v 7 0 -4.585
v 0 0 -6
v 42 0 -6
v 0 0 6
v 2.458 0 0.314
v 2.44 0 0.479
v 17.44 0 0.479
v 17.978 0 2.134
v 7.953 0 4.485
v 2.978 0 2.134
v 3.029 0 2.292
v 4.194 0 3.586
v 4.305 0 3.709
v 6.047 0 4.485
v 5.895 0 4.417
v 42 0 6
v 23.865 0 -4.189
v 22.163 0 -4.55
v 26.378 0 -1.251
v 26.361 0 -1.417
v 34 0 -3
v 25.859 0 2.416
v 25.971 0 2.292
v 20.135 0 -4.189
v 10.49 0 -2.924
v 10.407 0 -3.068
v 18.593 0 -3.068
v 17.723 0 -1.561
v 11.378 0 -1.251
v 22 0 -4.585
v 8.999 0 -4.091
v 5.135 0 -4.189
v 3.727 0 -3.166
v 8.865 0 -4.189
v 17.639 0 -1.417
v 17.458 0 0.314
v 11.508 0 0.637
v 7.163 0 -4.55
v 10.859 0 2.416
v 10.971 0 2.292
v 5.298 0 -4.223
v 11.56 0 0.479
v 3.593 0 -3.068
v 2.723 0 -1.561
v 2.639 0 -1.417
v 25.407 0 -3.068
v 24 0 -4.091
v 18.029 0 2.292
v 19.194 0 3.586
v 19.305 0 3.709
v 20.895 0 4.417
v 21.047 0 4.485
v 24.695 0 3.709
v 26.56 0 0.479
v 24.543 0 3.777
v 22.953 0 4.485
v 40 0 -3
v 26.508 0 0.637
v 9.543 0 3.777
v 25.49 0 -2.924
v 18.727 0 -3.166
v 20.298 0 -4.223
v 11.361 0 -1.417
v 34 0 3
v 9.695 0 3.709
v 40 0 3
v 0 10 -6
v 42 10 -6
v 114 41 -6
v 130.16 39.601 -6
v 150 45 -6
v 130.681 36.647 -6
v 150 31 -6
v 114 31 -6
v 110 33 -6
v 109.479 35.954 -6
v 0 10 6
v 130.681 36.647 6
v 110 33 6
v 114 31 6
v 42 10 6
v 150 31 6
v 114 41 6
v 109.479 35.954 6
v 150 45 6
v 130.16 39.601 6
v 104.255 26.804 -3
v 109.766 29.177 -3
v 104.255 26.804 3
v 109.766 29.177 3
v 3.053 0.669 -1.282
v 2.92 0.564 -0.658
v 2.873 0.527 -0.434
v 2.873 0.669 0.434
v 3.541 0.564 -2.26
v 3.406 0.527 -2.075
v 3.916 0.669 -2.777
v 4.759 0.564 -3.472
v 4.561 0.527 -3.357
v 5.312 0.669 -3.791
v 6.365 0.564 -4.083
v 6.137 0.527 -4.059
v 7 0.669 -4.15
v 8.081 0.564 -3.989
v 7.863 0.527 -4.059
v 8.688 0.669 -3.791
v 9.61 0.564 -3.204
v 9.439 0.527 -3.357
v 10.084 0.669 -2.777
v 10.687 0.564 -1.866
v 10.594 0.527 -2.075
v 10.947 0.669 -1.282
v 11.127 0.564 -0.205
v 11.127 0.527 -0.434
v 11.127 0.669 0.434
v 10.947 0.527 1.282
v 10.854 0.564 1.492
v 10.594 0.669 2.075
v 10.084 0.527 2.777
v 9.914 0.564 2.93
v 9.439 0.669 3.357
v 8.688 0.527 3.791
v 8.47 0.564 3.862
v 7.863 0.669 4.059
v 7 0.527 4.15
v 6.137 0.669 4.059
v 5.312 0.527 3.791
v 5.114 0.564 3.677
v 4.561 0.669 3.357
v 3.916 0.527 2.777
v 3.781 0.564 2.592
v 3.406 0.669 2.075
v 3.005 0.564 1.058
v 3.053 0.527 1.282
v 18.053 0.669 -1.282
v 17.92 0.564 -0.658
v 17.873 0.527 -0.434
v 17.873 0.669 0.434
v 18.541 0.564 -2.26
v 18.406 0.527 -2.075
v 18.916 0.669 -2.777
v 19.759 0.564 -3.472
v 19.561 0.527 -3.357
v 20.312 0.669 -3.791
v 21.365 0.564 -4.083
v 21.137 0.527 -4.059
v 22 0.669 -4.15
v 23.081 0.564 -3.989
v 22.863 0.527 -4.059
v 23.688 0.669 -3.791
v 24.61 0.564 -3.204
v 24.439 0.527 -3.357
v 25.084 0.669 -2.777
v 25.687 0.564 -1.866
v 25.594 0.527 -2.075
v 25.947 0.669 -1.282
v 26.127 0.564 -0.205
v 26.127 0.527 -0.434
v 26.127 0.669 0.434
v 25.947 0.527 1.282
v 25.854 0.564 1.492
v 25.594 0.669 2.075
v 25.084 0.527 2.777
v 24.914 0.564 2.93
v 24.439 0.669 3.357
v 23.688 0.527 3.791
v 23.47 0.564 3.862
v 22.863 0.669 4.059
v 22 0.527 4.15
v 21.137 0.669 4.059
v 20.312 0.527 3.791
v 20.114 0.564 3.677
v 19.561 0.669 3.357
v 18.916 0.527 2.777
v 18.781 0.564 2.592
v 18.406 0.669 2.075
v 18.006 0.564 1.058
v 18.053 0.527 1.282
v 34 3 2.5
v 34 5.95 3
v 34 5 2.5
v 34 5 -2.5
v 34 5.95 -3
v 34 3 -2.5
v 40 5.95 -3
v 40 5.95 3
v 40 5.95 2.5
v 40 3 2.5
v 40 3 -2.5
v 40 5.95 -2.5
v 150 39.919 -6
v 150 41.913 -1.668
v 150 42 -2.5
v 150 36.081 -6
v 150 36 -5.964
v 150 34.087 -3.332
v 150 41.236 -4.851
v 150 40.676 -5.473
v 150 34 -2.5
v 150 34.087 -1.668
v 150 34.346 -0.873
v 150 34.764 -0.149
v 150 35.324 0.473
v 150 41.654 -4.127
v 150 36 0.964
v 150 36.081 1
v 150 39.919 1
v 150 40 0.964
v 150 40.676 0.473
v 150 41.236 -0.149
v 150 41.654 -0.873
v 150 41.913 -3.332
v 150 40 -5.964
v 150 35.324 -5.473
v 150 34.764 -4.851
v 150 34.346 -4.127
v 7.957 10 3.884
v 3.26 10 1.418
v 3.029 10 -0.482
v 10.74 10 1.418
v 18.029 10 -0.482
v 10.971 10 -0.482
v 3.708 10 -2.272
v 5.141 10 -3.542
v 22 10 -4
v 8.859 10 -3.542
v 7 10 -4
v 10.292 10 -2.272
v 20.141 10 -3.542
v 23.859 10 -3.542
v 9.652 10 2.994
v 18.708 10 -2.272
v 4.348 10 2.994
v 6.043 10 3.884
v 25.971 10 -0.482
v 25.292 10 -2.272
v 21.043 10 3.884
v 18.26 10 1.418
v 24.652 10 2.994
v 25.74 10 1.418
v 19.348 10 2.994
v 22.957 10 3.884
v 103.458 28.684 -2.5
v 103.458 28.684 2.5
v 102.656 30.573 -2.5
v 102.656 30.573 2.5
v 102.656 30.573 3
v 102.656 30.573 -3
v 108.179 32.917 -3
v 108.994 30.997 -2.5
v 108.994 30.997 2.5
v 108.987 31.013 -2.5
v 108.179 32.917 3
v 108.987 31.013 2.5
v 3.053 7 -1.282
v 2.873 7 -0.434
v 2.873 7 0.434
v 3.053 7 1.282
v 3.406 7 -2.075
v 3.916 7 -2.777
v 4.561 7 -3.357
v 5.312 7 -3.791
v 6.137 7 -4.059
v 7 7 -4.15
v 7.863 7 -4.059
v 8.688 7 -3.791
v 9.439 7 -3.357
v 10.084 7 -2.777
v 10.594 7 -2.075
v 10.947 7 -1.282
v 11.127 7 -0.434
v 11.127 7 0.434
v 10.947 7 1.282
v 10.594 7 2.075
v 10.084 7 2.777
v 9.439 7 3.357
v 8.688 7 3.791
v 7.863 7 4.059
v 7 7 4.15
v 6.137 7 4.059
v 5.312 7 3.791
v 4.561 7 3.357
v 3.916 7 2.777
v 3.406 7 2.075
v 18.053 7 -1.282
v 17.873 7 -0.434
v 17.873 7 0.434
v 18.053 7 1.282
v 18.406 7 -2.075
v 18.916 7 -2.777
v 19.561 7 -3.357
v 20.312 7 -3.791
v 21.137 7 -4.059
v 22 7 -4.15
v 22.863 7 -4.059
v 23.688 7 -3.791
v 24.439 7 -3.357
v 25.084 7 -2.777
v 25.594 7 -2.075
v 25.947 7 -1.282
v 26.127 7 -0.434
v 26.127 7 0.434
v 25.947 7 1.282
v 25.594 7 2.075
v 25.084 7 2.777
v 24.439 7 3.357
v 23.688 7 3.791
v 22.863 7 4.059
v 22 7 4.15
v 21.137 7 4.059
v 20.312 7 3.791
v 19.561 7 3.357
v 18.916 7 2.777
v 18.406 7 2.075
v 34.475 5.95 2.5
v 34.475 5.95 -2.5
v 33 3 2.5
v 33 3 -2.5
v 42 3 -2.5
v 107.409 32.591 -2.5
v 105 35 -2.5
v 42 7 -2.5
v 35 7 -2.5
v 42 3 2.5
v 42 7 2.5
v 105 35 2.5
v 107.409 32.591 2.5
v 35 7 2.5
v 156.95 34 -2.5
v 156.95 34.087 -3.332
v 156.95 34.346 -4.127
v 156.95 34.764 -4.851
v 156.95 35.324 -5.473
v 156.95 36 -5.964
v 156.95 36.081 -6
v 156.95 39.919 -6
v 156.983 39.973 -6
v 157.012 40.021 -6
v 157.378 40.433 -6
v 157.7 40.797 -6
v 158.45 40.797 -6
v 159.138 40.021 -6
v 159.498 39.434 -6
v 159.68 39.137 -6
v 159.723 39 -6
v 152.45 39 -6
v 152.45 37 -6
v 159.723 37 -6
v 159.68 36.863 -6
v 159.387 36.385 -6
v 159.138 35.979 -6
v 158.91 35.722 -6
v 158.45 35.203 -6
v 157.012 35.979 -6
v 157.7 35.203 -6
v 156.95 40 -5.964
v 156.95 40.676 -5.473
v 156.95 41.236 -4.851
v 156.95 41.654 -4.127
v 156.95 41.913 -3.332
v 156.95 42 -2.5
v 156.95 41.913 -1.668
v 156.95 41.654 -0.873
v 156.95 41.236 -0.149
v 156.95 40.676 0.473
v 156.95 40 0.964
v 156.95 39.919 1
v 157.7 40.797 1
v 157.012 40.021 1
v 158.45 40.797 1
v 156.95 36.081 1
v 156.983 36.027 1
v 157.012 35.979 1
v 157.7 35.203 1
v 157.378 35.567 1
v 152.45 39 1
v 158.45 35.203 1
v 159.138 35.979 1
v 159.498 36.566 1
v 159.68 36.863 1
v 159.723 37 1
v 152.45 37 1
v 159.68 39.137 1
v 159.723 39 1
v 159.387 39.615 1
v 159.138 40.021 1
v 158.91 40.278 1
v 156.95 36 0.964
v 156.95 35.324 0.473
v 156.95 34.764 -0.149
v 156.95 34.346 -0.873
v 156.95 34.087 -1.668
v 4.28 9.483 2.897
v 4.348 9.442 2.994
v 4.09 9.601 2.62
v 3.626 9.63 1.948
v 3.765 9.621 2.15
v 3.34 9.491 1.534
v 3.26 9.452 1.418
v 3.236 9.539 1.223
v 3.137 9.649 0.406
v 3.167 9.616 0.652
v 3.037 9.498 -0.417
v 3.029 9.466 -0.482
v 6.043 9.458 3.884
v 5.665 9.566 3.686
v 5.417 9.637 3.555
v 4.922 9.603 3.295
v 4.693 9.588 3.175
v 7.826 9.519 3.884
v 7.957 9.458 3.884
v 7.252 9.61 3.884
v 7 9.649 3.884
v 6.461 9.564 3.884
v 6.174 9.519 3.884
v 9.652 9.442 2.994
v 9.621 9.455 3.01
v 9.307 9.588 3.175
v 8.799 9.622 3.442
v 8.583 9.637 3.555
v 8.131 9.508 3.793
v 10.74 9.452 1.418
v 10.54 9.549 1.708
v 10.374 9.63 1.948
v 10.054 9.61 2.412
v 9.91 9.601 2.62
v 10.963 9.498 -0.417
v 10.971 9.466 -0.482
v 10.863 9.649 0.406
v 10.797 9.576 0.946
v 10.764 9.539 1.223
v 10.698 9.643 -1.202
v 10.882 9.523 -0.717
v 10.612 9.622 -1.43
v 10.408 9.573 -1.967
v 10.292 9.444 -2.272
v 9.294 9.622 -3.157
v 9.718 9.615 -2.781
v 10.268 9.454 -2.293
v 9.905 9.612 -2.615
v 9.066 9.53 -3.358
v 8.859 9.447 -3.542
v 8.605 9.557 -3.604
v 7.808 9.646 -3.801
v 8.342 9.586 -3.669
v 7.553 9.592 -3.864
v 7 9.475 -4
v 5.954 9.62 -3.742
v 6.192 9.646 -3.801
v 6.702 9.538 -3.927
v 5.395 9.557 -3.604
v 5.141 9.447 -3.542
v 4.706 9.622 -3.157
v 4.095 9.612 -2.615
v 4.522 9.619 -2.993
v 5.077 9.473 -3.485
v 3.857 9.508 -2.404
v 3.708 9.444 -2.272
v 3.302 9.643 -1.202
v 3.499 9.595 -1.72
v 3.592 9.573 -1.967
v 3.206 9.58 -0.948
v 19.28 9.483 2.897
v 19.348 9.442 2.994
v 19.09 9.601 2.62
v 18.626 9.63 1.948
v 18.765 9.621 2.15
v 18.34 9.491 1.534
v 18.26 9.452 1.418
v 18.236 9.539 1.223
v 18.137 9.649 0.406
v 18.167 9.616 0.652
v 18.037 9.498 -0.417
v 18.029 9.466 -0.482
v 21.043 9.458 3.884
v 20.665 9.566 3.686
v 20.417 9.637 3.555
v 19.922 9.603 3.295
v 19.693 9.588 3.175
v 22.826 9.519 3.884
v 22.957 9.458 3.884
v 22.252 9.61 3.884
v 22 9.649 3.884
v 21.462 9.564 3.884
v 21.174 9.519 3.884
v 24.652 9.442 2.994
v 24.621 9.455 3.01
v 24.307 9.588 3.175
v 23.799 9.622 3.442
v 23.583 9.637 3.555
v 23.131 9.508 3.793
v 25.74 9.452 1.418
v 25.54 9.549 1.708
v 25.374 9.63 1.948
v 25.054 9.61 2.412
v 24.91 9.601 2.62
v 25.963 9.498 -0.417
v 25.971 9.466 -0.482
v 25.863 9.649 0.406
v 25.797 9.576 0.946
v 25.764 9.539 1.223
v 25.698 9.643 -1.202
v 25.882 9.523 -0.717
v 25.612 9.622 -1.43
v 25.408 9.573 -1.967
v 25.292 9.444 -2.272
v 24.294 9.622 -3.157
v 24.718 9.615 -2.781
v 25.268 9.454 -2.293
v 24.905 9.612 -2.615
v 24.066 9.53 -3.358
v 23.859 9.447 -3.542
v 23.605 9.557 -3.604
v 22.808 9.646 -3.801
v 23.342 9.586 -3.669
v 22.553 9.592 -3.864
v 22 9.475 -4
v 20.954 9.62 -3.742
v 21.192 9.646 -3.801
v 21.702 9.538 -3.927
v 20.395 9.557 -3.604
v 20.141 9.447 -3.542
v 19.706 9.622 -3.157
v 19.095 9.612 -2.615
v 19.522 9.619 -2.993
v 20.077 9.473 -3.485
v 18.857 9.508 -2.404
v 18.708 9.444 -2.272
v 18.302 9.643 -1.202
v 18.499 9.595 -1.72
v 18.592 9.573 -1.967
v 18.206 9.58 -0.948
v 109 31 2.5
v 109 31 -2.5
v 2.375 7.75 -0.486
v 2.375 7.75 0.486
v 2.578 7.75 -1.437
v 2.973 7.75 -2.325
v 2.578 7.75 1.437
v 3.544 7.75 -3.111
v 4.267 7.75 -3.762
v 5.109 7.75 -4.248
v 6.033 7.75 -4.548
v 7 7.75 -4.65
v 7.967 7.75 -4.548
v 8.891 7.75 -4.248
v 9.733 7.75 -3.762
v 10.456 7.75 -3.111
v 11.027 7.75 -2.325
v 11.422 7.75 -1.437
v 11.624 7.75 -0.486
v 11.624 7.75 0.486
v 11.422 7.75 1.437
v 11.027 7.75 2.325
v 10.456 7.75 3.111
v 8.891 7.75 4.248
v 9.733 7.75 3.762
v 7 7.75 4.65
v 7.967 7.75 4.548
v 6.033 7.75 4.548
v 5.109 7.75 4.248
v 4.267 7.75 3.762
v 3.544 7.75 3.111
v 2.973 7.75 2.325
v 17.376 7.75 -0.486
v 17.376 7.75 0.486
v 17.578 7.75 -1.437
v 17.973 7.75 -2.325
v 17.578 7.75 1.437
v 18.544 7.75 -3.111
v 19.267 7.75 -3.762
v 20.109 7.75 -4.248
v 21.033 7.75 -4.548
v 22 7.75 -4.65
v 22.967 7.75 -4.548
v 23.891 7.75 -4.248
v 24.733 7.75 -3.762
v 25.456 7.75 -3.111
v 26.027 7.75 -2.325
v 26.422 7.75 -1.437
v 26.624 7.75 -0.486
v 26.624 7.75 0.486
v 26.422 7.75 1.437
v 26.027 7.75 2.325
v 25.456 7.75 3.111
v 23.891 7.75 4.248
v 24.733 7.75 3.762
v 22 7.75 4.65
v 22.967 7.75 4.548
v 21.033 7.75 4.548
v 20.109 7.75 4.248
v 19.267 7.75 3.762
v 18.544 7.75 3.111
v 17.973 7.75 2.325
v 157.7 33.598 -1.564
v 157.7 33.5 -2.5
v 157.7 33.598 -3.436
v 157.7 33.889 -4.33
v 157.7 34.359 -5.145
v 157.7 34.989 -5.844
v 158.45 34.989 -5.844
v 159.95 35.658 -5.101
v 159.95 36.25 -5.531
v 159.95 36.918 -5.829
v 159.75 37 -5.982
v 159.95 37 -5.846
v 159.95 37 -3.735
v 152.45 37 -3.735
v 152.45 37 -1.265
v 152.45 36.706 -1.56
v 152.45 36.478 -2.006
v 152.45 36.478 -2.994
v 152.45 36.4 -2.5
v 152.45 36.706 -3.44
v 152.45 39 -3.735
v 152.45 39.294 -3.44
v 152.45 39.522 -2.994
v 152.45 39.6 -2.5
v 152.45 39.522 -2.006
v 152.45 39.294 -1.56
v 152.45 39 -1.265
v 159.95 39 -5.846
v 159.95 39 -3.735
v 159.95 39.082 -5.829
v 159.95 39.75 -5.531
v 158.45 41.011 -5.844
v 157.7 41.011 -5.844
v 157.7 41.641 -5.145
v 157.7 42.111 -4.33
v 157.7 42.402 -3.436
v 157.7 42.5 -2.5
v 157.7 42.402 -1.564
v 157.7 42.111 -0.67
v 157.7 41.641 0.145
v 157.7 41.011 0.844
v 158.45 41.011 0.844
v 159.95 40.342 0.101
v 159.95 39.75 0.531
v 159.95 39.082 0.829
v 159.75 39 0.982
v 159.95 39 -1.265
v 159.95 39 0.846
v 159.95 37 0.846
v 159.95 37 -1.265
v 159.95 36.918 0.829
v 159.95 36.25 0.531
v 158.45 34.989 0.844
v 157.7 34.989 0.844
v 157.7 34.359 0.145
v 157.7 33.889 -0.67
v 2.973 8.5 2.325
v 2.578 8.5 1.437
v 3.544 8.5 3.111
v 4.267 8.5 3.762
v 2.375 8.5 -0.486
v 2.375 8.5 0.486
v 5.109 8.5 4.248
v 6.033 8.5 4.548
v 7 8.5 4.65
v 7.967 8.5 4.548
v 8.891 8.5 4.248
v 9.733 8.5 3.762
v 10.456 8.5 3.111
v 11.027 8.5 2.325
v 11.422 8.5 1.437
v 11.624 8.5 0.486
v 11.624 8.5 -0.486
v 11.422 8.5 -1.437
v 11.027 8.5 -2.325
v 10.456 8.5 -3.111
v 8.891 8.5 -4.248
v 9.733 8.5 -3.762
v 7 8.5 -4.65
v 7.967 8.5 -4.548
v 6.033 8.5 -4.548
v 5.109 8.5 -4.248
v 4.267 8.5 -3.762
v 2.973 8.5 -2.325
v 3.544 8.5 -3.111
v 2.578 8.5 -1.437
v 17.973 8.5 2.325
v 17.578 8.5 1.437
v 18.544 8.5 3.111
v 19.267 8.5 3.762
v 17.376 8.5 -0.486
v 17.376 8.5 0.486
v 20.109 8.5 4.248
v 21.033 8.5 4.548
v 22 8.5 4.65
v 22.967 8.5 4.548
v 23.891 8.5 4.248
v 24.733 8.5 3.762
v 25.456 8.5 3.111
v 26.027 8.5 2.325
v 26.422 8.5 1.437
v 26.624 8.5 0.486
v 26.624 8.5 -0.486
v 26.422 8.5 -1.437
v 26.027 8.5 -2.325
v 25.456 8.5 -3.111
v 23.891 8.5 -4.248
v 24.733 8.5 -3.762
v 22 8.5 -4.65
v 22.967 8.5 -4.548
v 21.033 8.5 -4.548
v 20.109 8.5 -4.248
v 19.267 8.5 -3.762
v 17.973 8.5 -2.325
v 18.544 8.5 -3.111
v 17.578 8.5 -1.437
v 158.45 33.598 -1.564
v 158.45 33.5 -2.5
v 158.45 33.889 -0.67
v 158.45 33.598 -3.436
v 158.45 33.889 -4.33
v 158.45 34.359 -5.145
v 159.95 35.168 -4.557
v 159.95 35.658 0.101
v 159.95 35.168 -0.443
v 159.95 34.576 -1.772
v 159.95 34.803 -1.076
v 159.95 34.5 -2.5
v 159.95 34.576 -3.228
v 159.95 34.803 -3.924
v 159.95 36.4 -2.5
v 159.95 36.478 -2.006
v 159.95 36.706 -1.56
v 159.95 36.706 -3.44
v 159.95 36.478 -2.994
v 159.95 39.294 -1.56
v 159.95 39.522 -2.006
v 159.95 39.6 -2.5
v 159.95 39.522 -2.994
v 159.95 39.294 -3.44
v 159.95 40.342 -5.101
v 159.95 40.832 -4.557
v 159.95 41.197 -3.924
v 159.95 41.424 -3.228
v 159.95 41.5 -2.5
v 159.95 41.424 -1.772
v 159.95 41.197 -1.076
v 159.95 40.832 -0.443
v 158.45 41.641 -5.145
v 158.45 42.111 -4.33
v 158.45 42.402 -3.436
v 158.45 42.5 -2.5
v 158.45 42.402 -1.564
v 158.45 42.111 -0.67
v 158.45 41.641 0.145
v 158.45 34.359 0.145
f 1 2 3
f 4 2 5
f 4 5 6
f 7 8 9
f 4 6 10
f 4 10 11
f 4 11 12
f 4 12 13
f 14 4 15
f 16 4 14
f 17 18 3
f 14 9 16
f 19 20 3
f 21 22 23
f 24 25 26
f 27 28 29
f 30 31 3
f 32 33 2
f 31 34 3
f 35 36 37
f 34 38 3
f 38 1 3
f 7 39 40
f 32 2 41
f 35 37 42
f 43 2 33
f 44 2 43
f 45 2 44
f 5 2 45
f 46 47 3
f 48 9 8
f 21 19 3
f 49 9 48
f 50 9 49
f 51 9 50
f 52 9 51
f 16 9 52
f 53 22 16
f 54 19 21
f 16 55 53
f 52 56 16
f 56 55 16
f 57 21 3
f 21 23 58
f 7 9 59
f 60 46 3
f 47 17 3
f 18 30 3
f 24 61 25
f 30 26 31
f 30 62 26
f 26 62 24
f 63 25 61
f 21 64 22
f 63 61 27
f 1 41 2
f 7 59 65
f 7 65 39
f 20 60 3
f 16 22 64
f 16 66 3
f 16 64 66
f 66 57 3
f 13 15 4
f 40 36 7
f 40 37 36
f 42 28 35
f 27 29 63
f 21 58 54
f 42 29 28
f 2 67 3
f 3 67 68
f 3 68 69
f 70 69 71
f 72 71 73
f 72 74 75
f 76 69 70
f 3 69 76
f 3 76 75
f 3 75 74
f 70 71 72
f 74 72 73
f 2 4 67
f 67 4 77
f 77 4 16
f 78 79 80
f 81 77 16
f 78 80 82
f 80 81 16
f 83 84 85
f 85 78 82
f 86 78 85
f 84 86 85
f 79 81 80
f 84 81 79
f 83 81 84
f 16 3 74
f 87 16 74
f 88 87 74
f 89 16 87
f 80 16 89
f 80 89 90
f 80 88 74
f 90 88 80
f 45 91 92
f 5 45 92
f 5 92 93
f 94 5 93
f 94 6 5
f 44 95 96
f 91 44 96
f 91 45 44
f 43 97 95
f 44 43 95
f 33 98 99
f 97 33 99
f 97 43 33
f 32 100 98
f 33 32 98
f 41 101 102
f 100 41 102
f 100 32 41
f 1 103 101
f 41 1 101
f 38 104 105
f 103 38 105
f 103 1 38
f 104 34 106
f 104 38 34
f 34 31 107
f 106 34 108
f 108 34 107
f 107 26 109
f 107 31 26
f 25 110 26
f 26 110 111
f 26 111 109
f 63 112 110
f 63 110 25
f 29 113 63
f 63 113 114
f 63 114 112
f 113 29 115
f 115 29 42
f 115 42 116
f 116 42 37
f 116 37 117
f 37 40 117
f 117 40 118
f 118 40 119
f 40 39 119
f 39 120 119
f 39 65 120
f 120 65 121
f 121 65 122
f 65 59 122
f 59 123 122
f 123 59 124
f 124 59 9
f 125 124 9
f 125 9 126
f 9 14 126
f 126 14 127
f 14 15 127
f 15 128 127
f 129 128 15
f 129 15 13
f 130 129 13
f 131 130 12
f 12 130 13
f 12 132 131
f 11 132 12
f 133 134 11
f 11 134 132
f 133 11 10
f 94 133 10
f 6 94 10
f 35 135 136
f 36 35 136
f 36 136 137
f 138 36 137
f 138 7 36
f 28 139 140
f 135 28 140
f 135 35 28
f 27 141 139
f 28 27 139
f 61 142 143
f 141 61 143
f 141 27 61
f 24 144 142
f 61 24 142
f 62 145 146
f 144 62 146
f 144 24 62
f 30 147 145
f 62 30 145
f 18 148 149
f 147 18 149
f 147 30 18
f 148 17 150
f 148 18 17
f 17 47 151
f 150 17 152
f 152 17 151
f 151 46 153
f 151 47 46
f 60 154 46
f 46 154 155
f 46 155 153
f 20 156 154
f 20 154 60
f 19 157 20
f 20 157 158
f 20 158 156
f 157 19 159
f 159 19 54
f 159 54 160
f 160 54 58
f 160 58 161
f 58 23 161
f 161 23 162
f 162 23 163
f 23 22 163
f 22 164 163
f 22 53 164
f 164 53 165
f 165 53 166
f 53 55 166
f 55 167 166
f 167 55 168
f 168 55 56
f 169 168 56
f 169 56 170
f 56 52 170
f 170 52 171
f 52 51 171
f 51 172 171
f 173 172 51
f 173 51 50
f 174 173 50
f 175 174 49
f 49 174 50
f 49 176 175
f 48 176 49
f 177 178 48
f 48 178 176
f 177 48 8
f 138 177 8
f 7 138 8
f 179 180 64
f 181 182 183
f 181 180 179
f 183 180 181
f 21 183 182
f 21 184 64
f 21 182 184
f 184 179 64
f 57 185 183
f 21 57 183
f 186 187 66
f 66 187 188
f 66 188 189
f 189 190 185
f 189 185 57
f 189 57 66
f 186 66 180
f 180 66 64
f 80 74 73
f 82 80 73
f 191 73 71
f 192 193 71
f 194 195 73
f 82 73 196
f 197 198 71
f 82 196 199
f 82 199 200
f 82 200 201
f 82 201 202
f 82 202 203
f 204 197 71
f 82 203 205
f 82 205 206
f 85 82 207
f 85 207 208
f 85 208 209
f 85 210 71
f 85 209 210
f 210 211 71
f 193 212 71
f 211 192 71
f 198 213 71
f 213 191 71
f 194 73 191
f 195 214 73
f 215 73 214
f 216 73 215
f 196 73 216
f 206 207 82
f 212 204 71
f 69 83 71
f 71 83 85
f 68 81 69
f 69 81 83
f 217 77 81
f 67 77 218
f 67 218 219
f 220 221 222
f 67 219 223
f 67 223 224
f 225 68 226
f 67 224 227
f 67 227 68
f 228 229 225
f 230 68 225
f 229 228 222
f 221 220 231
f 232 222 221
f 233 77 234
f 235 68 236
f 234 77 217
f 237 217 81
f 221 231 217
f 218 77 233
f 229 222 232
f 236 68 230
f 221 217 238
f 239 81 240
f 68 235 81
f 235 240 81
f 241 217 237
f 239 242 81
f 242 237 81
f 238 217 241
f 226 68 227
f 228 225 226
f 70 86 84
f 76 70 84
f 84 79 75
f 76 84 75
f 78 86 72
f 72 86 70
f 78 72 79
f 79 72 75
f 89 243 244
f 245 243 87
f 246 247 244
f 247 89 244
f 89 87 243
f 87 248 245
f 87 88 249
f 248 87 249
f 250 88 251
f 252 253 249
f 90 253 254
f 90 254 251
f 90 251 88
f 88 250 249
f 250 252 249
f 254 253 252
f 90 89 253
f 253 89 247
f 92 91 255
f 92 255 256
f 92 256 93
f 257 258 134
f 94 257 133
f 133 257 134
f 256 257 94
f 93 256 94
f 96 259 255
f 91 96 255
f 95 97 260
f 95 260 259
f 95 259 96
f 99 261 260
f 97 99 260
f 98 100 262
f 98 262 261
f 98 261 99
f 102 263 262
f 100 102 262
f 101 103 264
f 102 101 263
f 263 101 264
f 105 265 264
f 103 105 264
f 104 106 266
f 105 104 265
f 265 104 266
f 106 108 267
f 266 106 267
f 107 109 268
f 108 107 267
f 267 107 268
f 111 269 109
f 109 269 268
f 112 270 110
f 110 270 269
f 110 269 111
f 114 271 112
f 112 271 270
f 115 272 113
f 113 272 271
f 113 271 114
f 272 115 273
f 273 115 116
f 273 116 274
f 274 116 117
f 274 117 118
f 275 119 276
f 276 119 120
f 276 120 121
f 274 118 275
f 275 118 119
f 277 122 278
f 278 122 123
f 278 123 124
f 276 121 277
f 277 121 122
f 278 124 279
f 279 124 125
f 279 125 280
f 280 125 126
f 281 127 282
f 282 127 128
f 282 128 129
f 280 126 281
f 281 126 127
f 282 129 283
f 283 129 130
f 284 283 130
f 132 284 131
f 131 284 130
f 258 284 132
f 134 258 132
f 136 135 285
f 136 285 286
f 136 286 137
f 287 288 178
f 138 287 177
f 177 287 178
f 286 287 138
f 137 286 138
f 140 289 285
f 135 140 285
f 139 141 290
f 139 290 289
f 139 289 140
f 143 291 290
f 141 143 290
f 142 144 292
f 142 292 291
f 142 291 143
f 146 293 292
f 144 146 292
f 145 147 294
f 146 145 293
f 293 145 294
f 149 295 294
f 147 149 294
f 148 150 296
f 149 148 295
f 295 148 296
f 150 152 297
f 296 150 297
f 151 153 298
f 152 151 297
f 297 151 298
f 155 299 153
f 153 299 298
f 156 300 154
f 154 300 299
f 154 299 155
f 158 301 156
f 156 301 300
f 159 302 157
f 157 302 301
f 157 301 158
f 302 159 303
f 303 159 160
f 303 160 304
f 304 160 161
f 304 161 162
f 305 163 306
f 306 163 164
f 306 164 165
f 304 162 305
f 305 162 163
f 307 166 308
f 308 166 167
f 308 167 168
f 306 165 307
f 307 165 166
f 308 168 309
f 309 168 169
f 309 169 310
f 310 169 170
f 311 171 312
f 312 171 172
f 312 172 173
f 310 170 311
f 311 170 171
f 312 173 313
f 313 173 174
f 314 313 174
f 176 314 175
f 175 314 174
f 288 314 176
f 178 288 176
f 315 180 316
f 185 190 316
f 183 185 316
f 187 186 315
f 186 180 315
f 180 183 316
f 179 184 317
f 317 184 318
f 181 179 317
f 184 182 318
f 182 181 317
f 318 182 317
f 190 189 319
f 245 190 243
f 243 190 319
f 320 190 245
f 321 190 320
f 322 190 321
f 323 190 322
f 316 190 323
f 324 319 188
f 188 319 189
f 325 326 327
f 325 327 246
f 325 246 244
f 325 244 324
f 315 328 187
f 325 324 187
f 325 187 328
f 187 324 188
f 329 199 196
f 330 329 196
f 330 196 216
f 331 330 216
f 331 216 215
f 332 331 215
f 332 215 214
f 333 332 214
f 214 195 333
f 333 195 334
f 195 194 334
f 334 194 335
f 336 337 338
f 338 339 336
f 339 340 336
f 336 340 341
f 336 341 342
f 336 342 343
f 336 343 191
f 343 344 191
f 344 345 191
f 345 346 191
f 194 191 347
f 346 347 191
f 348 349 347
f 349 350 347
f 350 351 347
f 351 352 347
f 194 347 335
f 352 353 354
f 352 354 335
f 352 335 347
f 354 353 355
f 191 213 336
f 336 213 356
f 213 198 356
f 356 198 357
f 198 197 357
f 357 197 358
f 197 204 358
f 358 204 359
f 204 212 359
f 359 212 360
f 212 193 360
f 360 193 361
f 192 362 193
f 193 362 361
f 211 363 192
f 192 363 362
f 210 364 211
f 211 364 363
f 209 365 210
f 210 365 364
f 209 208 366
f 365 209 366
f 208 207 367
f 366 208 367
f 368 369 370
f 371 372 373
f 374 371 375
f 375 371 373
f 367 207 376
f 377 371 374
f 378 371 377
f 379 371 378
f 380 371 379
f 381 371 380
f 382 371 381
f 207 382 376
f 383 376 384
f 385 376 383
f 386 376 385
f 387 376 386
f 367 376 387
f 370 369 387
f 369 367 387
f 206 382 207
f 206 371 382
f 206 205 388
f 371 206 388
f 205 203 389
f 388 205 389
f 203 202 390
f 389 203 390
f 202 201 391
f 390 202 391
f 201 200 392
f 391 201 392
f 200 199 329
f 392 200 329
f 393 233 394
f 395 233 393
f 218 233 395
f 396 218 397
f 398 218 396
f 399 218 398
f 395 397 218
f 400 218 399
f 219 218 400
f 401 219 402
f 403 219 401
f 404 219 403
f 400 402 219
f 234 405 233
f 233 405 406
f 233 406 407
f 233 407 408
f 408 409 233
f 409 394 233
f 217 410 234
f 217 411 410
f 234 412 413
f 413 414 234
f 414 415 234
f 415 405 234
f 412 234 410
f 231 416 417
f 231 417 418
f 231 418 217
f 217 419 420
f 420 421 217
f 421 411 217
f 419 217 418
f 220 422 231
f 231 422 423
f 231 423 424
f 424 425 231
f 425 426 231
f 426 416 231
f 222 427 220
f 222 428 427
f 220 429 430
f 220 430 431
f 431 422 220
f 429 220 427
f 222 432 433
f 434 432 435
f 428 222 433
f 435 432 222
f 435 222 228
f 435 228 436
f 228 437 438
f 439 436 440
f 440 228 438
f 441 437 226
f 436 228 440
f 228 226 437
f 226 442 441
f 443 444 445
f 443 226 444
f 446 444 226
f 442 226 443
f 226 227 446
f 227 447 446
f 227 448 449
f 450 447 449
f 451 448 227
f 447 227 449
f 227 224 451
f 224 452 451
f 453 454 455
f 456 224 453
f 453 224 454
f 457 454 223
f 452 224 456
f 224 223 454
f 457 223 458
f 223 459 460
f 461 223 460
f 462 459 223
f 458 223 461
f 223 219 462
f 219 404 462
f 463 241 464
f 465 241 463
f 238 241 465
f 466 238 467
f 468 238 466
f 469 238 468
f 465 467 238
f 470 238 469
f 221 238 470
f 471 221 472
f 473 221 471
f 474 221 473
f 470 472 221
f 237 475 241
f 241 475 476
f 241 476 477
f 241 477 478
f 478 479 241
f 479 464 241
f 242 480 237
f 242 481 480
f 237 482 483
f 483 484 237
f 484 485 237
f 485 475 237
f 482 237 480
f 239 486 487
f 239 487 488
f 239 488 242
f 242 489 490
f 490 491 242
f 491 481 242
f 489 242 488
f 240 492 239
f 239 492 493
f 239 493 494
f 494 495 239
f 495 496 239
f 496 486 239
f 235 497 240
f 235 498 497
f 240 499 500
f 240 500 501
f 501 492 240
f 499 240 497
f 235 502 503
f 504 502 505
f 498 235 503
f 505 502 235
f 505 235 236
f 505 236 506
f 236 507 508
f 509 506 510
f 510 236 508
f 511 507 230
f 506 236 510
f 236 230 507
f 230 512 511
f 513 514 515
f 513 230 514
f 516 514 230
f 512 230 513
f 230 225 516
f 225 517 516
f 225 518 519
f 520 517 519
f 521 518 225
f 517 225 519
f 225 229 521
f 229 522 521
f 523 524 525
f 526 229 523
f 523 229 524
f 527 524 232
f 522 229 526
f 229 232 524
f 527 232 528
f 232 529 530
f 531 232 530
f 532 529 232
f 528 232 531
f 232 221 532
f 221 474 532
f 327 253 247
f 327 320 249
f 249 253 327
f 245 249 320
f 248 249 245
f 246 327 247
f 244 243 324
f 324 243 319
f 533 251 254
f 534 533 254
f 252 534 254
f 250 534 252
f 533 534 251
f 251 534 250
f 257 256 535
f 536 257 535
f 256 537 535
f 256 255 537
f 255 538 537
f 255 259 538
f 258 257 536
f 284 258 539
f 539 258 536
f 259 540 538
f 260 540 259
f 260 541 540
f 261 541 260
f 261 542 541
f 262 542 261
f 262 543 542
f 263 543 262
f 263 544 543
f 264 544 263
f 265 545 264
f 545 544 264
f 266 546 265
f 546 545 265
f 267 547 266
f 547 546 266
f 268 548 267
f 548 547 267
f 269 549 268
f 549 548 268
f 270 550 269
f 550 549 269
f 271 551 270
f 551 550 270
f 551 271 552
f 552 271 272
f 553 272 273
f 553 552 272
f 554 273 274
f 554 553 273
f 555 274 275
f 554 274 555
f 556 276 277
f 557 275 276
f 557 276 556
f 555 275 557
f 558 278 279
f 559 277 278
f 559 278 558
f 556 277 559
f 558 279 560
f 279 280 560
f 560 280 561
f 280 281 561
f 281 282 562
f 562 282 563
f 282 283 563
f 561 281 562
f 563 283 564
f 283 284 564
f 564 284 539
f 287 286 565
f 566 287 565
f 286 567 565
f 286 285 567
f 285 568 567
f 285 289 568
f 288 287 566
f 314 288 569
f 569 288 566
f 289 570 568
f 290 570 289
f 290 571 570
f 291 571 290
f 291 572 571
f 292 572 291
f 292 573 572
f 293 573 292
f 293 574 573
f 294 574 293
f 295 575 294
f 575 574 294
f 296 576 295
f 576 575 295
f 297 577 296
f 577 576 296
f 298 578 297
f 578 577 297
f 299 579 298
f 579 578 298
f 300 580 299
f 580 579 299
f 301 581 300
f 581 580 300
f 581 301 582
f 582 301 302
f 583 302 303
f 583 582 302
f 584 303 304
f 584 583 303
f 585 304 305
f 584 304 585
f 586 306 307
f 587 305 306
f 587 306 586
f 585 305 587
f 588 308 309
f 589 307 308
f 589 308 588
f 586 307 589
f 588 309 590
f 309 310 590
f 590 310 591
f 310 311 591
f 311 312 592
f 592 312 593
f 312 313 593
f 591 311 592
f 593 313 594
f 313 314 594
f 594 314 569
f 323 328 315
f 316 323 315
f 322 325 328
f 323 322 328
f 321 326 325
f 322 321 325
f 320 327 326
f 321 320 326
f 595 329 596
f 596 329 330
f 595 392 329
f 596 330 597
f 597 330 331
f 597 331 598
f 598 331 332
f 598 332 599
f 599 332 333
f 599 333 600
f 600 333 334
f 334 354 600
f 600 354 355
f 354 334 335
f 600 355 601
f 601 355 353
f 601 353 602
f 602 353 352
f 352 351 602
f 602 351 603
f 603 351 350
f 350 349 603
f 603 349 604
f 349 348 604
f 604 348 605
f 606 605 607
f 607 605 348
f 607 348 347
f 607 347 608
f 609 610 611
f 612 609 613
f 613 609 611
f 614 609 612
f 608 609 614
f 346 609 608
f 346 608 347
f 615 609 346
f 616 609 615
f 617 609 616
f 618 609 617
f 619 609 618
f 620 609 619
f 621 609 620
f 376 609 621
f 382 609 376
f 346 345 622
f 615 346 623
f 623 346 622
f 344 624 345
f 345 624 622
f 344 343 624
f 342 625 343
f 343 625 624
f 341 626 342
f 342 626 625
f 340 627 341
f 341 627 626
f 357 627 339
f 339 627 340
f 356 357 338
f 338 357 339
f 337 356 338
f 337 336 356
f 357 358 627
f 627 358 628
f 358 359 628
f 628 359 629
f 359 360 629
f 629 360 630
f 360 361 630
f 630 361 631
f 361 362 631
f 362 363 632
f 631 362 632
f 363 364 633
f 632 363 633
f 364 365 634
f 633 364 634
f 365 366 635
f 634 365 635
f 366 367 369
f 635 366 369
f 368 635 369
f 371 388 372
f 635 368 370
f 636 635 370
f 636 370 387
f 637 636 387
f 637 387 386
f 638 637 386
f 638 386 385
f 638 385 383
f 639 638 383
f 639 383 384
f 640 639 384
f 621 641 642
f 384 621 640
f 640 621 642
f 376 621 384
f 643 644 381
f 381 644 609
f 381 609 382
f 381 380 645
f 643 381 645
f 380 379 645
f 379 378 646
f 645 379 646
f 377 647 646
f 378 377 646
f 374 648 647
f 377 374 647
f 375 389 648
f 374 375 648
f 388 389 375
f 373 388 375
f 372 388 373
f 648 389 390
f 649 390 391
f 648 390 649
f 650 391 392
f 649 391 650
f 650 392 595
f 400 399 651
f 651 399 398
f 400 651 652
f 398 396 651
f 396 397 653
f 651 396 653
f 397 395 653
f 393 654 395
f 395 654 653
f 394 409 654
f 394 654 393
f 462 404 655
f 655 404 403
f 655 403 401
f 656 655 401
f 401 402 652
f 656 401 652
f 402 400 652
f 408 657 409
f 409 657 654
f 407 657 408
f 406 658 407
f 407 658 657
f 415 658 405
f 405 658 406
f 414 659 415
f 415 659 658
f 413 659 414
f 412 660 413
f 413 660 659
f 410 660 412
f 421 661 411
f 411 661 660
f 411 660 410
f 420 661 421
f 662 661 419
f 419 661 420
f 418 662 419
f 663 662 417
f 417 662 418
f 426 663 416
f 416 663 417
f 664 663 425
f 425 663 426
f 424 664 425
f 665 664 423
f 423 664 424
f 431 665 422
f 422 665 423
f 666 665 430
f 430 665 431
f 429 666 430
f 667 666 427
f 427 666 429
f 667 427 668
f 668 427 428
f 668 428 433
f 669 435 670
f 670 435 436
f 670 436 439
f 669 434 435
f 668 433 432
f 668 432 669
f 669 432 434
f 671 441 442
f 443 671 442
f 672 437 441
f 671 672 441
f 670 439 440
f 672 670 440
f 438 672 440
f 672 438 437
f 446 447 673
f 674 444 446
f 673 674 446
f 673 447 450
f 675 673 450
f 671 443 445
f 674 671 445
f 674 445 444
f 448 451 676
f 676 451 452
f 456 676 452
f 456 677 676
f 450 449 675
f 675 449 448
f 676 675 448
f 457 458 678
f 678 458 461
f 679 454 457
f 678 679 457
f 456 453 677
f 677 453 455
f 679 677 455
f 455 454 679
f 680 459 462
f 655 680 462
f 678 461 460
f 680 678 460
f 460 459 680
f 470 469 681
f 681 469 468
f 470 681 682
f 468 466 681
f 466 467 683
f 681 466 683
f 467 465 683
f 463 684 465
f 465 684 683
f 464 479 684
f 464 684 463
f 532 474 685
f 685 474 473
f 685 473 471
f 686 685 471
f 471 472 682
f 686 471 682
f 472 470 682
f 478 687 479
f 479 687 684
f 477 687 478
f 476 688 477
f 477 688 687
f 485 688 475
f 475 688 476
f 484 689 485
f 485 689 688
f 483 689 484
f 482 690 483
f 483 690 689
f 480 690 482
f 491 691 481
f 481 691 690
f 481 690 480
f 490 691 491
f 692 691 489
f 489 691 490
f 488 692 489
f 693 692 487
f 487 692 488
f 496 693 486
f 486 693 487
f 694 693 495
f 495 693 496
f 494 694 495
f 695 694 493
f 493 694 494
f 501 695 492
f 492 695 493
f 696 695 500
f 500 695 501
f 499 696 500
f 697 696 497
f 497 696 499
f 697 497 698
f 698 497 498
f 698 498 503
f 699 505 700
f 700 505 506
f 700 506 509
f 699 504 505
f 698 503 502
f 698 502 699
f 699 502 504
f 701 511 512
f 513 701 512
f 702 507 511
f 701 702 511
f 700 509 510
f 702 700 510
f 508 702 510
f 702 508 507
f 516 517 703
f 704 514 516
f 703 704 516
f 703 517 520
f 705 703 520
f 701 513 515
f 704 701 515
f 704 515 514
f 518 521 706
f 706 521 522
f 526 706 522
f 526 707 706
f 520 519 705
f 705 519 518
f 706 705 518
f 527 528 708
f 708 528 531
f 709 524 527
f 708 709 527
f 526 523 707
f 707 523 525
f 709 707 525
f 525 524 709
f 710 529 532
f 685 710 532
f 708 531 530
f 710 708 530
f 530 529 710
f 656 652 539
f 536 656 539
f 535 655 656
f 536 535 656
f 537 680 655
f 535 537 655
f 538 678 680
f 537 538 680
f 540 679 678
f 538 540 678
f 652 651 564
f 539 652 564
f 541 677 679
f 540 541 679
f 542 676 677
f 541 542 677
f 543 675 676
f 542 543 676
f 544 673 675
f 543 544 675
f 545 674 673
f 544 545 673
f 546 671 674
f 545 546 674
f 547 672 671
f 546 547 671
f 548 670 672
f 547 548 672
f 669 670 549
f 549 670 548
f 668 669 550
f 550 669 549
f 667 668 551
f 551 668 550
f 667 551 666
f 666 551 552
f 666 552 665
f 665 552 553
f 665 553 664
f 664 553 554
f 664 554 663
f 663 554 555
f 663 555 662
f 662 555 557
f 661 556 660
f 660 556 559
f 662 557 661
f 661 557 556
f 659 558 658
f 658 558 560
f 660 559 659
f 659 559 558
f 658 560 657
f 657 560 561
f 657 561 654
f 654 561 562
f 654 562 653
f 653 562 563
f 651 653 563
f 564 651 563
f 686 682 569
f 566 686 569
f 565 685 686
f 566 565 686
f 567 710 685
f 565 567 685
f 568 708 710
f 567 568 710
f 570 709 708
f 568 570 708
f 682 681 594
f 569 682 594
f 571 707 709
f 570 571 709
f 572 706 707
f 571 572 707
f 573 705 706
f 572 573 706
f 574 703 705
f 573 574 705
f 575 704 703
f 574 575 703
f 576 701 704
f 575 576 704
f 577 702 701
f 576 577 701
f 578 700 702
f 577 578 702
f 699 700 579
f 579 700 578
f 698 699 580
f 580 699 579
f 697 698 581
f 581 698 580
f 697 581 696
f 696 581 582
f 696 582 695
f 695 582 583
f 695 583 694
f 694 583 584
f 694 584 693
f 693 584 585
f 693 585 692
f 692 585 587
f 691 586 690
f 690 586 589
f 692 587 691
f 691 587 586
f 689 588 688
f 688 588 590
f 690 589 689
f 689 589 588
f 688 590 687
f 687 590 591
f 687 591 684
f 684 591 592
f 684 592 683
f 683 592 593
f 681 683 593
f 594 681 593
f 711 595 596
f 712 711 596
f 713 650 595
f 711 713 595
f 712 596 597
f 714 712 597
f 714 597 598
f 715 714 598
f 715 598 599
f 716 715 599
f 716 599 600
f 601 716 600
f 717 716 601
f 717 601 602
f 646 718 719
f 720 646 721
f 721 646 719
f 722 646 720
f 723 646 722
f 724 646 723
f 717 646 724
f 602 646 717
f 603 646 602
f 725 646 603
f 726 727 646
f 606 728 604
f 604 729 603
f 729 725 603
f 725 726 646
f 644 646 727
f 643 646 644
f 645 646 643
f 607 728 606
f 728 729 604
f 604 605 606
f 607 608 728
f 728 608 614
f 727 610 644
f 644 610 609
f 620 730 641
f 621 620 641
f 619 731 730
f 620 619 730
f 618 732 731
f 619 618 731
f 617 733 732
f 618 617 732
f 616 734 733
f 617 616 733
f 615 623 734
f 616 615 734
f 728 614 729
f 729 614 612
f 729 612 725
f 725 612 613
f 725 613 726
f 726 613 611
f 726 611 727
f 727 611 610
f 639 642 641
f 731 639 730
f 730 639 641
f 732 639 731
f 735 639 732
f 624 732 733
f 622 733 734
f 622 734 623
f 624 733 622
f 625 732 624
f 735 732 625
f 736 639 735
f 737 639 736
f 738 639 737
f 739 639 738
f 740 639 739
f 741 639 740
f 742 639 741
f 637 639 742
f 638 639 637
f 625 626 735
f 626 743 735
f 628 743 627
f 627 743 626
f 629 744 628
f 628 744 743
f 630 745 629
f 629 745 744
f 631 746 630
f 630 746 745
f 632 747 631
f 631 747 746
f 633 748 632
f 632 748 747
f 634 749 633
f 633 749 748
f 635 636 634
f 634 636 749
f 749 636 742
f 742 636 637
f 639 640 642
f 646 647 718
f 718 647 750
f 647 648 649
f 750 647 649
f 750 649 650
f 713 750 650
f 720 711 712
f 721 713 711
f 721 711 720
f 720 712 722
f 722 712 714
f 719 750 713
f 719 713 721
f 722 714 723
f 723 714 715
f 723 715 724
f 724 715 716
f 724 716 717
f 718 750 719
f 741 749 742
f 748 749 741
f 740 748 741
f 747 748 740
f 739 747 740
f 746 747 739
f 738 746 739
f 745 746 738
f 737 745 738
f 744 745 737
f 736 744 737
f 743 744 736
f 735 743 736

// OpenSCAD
// file: pins.scad
// Pin Connectors V2
// Tony Buser <tbuser@gmail.com>

// pinhole(h=5);

// test();
// pintack(h=10);
// pinpeg(h=20);

module test() {
  tolerance = 0.3;
  
  translate([-12, 12, 0]) pinpeg(h=20);
  translate([12, 12, 0]) pintack(h=10);
  
  difference() {
    union() {
      translate([0, -12, 2.5]) cube(size = [59, 20, 5], center = true);
      translate([24, -12, 7.5]) cube(size = [12, 20, 15], center = true);
    }
    translate([-24, -12, 0]) pinhole(h=5, t=tolerance);
    translate([-12, -12, 0]) pinhole(h=5, t=tolerance, tight=false);
    translate([0, -12, 0]) pinhole(h=10, t=tolerance);
    translate([12, -12, 0]) pinhole(h=10, t=tolerance, tight=false);
    translate([24, -12, 15]) rotate([0, 180, 0]) pinhole(h=10, t=tolerance);
  }
}

module pinhole(h=10, r=4, lh=3, lt=1, t=0.3, tight=true) {
  union() {
    pin_solid(h, r+(t/2), lh, lt);
    cylinder(h=h+0.2, r=r);
    // widen the cylinder slightly
    // cylinder(h=h+0.2, r=r+(t-0.2/2));
    if (tight == false) {
      cylinder(h=h+0.2, r=r+(t/2)+0.25);
    }
    // widen the entrance hole to make insertion easier
    translate([0, 0, -0.1]) cylinder(h=lh/3, r2=r, r1=r+(t/2)+(lt/2));
  }
}

module pin(h=10, r=4, lh=3, lt=1, side=false) {
  if (side) {
    pin_horizontal(h, r, lh, lt);
  } else {
    pin_vertical(h, r, lh, lt);
  }
}

module pintack(h=10, r=4, lh=3, lt=1, bh=3, br=8.75) {
  union() {
    cylinder(h=bh, r=br);
    translate([0, 0, bh]) pin(h, r, lh, lt);
  }
}

module pinpeg(h=20, r=4, lh=3, lt=1) {
  union() {
    translate([0, -h/4+0.05, 0]) pin(h/2+0.1, r, lh, lt, side=true);
    translate([0, h/4-0.05, 0]) rotate([0, 0, 180]) pin(h/2+0.1, r, lh, lt, side=true);
  }
}

module pin_vertical(h=10, r=4, lh=3, lt=1) {
  difference() {
    pin_solid(h, r, lh, lt);
    
    // center cut
    translate([-r*0.5/2, -(r*2+lt*2)/2, h/4]) cube([r*0.5, r*2+lt*2, h]);
    translate([0, 0, h/4]) cylinder(h=h+lh, r=r/2.5, $fn=20);
    // center curve
    // translate([0, 0, h/4]) rotate([90, 0, 0]) cylinder(h=r*2, r=r*0.5/2, center=true, $fn=20);
  
    // side cuts
    translate([-r*2, -lt-r*1.125, -1]) cube([r*4, lt*2, h+2]);
    translate([-r*2, -lt+r*1.125, -1]) cube([r*4, lt*2, h+2]);
  }
}

// call pin with side=true instead of this
module pin_horizontal(h=10, r=4, lh=3, lt=1) {
  translate([0, h/2, r*1.125-lt]) rotate([90, 0, 0]) pin_vertical(h, r, lh, lt);
}

// this is mainly to make the pinhole module easier
module pin_solid(h=10, r=4, lh=3, lt=1) {
  union() {
    cylinder(h=h-lh, r=r, $fn=30);
    translate([0, 0, h-lh]) cylinder(h=lh*0.25, r1=r, r2=r+(lt/2), $fn=30);
    translate([0, 0, h-lh+lh*0.25]) cylinder(h=lh*0.25, r=r+(lt/2), $fn=30);    
    translate([0, 0, h-lh+lh*0.50]) cylinder(h=lh*0.50, r1=r+(lt/2), r2=r-(lt/2), $fn=30);    
  }
}

module two_pinholes() {
 pinhole();
 translate(v=[15,0,0]) pinhole();
}
// main file
include <pins.scad>

module left_rack() {

 difference() {
  linear_extrude(height = 12, center = true, convexity = 10)
  polygon([[0,0],[42,0],[114,31],[150,31],[150,45],[114,41],[42,10],[0,10]]);
 
  rotate(a=[0,90,90]) translate(v=[0,-7,0]) pinhole();
  rotate(a=[0,90,90]) translate(v=[0,-22,0]) pinhole();

  linear_extrude(height = 5, center = true, convexity = 10)
  polygon([[33,3],[42,3],[109,31],[105,35],[42,7],[35,7]]);
 
  translate(v=[34,-0.05,-3]) cube(6);
  translate(v=[105,25.05,-3]) rotate([0,0,23]) cube(6);


  translate(v=[ 110,33,-6]) rotate(a=[0,0,10]) cube(size=[21,3,14]);

 }

 translate(v=[154.95,38,-6]) rotate(a=[0,0,90]) pin(side=true);
 
}

left_rack();
